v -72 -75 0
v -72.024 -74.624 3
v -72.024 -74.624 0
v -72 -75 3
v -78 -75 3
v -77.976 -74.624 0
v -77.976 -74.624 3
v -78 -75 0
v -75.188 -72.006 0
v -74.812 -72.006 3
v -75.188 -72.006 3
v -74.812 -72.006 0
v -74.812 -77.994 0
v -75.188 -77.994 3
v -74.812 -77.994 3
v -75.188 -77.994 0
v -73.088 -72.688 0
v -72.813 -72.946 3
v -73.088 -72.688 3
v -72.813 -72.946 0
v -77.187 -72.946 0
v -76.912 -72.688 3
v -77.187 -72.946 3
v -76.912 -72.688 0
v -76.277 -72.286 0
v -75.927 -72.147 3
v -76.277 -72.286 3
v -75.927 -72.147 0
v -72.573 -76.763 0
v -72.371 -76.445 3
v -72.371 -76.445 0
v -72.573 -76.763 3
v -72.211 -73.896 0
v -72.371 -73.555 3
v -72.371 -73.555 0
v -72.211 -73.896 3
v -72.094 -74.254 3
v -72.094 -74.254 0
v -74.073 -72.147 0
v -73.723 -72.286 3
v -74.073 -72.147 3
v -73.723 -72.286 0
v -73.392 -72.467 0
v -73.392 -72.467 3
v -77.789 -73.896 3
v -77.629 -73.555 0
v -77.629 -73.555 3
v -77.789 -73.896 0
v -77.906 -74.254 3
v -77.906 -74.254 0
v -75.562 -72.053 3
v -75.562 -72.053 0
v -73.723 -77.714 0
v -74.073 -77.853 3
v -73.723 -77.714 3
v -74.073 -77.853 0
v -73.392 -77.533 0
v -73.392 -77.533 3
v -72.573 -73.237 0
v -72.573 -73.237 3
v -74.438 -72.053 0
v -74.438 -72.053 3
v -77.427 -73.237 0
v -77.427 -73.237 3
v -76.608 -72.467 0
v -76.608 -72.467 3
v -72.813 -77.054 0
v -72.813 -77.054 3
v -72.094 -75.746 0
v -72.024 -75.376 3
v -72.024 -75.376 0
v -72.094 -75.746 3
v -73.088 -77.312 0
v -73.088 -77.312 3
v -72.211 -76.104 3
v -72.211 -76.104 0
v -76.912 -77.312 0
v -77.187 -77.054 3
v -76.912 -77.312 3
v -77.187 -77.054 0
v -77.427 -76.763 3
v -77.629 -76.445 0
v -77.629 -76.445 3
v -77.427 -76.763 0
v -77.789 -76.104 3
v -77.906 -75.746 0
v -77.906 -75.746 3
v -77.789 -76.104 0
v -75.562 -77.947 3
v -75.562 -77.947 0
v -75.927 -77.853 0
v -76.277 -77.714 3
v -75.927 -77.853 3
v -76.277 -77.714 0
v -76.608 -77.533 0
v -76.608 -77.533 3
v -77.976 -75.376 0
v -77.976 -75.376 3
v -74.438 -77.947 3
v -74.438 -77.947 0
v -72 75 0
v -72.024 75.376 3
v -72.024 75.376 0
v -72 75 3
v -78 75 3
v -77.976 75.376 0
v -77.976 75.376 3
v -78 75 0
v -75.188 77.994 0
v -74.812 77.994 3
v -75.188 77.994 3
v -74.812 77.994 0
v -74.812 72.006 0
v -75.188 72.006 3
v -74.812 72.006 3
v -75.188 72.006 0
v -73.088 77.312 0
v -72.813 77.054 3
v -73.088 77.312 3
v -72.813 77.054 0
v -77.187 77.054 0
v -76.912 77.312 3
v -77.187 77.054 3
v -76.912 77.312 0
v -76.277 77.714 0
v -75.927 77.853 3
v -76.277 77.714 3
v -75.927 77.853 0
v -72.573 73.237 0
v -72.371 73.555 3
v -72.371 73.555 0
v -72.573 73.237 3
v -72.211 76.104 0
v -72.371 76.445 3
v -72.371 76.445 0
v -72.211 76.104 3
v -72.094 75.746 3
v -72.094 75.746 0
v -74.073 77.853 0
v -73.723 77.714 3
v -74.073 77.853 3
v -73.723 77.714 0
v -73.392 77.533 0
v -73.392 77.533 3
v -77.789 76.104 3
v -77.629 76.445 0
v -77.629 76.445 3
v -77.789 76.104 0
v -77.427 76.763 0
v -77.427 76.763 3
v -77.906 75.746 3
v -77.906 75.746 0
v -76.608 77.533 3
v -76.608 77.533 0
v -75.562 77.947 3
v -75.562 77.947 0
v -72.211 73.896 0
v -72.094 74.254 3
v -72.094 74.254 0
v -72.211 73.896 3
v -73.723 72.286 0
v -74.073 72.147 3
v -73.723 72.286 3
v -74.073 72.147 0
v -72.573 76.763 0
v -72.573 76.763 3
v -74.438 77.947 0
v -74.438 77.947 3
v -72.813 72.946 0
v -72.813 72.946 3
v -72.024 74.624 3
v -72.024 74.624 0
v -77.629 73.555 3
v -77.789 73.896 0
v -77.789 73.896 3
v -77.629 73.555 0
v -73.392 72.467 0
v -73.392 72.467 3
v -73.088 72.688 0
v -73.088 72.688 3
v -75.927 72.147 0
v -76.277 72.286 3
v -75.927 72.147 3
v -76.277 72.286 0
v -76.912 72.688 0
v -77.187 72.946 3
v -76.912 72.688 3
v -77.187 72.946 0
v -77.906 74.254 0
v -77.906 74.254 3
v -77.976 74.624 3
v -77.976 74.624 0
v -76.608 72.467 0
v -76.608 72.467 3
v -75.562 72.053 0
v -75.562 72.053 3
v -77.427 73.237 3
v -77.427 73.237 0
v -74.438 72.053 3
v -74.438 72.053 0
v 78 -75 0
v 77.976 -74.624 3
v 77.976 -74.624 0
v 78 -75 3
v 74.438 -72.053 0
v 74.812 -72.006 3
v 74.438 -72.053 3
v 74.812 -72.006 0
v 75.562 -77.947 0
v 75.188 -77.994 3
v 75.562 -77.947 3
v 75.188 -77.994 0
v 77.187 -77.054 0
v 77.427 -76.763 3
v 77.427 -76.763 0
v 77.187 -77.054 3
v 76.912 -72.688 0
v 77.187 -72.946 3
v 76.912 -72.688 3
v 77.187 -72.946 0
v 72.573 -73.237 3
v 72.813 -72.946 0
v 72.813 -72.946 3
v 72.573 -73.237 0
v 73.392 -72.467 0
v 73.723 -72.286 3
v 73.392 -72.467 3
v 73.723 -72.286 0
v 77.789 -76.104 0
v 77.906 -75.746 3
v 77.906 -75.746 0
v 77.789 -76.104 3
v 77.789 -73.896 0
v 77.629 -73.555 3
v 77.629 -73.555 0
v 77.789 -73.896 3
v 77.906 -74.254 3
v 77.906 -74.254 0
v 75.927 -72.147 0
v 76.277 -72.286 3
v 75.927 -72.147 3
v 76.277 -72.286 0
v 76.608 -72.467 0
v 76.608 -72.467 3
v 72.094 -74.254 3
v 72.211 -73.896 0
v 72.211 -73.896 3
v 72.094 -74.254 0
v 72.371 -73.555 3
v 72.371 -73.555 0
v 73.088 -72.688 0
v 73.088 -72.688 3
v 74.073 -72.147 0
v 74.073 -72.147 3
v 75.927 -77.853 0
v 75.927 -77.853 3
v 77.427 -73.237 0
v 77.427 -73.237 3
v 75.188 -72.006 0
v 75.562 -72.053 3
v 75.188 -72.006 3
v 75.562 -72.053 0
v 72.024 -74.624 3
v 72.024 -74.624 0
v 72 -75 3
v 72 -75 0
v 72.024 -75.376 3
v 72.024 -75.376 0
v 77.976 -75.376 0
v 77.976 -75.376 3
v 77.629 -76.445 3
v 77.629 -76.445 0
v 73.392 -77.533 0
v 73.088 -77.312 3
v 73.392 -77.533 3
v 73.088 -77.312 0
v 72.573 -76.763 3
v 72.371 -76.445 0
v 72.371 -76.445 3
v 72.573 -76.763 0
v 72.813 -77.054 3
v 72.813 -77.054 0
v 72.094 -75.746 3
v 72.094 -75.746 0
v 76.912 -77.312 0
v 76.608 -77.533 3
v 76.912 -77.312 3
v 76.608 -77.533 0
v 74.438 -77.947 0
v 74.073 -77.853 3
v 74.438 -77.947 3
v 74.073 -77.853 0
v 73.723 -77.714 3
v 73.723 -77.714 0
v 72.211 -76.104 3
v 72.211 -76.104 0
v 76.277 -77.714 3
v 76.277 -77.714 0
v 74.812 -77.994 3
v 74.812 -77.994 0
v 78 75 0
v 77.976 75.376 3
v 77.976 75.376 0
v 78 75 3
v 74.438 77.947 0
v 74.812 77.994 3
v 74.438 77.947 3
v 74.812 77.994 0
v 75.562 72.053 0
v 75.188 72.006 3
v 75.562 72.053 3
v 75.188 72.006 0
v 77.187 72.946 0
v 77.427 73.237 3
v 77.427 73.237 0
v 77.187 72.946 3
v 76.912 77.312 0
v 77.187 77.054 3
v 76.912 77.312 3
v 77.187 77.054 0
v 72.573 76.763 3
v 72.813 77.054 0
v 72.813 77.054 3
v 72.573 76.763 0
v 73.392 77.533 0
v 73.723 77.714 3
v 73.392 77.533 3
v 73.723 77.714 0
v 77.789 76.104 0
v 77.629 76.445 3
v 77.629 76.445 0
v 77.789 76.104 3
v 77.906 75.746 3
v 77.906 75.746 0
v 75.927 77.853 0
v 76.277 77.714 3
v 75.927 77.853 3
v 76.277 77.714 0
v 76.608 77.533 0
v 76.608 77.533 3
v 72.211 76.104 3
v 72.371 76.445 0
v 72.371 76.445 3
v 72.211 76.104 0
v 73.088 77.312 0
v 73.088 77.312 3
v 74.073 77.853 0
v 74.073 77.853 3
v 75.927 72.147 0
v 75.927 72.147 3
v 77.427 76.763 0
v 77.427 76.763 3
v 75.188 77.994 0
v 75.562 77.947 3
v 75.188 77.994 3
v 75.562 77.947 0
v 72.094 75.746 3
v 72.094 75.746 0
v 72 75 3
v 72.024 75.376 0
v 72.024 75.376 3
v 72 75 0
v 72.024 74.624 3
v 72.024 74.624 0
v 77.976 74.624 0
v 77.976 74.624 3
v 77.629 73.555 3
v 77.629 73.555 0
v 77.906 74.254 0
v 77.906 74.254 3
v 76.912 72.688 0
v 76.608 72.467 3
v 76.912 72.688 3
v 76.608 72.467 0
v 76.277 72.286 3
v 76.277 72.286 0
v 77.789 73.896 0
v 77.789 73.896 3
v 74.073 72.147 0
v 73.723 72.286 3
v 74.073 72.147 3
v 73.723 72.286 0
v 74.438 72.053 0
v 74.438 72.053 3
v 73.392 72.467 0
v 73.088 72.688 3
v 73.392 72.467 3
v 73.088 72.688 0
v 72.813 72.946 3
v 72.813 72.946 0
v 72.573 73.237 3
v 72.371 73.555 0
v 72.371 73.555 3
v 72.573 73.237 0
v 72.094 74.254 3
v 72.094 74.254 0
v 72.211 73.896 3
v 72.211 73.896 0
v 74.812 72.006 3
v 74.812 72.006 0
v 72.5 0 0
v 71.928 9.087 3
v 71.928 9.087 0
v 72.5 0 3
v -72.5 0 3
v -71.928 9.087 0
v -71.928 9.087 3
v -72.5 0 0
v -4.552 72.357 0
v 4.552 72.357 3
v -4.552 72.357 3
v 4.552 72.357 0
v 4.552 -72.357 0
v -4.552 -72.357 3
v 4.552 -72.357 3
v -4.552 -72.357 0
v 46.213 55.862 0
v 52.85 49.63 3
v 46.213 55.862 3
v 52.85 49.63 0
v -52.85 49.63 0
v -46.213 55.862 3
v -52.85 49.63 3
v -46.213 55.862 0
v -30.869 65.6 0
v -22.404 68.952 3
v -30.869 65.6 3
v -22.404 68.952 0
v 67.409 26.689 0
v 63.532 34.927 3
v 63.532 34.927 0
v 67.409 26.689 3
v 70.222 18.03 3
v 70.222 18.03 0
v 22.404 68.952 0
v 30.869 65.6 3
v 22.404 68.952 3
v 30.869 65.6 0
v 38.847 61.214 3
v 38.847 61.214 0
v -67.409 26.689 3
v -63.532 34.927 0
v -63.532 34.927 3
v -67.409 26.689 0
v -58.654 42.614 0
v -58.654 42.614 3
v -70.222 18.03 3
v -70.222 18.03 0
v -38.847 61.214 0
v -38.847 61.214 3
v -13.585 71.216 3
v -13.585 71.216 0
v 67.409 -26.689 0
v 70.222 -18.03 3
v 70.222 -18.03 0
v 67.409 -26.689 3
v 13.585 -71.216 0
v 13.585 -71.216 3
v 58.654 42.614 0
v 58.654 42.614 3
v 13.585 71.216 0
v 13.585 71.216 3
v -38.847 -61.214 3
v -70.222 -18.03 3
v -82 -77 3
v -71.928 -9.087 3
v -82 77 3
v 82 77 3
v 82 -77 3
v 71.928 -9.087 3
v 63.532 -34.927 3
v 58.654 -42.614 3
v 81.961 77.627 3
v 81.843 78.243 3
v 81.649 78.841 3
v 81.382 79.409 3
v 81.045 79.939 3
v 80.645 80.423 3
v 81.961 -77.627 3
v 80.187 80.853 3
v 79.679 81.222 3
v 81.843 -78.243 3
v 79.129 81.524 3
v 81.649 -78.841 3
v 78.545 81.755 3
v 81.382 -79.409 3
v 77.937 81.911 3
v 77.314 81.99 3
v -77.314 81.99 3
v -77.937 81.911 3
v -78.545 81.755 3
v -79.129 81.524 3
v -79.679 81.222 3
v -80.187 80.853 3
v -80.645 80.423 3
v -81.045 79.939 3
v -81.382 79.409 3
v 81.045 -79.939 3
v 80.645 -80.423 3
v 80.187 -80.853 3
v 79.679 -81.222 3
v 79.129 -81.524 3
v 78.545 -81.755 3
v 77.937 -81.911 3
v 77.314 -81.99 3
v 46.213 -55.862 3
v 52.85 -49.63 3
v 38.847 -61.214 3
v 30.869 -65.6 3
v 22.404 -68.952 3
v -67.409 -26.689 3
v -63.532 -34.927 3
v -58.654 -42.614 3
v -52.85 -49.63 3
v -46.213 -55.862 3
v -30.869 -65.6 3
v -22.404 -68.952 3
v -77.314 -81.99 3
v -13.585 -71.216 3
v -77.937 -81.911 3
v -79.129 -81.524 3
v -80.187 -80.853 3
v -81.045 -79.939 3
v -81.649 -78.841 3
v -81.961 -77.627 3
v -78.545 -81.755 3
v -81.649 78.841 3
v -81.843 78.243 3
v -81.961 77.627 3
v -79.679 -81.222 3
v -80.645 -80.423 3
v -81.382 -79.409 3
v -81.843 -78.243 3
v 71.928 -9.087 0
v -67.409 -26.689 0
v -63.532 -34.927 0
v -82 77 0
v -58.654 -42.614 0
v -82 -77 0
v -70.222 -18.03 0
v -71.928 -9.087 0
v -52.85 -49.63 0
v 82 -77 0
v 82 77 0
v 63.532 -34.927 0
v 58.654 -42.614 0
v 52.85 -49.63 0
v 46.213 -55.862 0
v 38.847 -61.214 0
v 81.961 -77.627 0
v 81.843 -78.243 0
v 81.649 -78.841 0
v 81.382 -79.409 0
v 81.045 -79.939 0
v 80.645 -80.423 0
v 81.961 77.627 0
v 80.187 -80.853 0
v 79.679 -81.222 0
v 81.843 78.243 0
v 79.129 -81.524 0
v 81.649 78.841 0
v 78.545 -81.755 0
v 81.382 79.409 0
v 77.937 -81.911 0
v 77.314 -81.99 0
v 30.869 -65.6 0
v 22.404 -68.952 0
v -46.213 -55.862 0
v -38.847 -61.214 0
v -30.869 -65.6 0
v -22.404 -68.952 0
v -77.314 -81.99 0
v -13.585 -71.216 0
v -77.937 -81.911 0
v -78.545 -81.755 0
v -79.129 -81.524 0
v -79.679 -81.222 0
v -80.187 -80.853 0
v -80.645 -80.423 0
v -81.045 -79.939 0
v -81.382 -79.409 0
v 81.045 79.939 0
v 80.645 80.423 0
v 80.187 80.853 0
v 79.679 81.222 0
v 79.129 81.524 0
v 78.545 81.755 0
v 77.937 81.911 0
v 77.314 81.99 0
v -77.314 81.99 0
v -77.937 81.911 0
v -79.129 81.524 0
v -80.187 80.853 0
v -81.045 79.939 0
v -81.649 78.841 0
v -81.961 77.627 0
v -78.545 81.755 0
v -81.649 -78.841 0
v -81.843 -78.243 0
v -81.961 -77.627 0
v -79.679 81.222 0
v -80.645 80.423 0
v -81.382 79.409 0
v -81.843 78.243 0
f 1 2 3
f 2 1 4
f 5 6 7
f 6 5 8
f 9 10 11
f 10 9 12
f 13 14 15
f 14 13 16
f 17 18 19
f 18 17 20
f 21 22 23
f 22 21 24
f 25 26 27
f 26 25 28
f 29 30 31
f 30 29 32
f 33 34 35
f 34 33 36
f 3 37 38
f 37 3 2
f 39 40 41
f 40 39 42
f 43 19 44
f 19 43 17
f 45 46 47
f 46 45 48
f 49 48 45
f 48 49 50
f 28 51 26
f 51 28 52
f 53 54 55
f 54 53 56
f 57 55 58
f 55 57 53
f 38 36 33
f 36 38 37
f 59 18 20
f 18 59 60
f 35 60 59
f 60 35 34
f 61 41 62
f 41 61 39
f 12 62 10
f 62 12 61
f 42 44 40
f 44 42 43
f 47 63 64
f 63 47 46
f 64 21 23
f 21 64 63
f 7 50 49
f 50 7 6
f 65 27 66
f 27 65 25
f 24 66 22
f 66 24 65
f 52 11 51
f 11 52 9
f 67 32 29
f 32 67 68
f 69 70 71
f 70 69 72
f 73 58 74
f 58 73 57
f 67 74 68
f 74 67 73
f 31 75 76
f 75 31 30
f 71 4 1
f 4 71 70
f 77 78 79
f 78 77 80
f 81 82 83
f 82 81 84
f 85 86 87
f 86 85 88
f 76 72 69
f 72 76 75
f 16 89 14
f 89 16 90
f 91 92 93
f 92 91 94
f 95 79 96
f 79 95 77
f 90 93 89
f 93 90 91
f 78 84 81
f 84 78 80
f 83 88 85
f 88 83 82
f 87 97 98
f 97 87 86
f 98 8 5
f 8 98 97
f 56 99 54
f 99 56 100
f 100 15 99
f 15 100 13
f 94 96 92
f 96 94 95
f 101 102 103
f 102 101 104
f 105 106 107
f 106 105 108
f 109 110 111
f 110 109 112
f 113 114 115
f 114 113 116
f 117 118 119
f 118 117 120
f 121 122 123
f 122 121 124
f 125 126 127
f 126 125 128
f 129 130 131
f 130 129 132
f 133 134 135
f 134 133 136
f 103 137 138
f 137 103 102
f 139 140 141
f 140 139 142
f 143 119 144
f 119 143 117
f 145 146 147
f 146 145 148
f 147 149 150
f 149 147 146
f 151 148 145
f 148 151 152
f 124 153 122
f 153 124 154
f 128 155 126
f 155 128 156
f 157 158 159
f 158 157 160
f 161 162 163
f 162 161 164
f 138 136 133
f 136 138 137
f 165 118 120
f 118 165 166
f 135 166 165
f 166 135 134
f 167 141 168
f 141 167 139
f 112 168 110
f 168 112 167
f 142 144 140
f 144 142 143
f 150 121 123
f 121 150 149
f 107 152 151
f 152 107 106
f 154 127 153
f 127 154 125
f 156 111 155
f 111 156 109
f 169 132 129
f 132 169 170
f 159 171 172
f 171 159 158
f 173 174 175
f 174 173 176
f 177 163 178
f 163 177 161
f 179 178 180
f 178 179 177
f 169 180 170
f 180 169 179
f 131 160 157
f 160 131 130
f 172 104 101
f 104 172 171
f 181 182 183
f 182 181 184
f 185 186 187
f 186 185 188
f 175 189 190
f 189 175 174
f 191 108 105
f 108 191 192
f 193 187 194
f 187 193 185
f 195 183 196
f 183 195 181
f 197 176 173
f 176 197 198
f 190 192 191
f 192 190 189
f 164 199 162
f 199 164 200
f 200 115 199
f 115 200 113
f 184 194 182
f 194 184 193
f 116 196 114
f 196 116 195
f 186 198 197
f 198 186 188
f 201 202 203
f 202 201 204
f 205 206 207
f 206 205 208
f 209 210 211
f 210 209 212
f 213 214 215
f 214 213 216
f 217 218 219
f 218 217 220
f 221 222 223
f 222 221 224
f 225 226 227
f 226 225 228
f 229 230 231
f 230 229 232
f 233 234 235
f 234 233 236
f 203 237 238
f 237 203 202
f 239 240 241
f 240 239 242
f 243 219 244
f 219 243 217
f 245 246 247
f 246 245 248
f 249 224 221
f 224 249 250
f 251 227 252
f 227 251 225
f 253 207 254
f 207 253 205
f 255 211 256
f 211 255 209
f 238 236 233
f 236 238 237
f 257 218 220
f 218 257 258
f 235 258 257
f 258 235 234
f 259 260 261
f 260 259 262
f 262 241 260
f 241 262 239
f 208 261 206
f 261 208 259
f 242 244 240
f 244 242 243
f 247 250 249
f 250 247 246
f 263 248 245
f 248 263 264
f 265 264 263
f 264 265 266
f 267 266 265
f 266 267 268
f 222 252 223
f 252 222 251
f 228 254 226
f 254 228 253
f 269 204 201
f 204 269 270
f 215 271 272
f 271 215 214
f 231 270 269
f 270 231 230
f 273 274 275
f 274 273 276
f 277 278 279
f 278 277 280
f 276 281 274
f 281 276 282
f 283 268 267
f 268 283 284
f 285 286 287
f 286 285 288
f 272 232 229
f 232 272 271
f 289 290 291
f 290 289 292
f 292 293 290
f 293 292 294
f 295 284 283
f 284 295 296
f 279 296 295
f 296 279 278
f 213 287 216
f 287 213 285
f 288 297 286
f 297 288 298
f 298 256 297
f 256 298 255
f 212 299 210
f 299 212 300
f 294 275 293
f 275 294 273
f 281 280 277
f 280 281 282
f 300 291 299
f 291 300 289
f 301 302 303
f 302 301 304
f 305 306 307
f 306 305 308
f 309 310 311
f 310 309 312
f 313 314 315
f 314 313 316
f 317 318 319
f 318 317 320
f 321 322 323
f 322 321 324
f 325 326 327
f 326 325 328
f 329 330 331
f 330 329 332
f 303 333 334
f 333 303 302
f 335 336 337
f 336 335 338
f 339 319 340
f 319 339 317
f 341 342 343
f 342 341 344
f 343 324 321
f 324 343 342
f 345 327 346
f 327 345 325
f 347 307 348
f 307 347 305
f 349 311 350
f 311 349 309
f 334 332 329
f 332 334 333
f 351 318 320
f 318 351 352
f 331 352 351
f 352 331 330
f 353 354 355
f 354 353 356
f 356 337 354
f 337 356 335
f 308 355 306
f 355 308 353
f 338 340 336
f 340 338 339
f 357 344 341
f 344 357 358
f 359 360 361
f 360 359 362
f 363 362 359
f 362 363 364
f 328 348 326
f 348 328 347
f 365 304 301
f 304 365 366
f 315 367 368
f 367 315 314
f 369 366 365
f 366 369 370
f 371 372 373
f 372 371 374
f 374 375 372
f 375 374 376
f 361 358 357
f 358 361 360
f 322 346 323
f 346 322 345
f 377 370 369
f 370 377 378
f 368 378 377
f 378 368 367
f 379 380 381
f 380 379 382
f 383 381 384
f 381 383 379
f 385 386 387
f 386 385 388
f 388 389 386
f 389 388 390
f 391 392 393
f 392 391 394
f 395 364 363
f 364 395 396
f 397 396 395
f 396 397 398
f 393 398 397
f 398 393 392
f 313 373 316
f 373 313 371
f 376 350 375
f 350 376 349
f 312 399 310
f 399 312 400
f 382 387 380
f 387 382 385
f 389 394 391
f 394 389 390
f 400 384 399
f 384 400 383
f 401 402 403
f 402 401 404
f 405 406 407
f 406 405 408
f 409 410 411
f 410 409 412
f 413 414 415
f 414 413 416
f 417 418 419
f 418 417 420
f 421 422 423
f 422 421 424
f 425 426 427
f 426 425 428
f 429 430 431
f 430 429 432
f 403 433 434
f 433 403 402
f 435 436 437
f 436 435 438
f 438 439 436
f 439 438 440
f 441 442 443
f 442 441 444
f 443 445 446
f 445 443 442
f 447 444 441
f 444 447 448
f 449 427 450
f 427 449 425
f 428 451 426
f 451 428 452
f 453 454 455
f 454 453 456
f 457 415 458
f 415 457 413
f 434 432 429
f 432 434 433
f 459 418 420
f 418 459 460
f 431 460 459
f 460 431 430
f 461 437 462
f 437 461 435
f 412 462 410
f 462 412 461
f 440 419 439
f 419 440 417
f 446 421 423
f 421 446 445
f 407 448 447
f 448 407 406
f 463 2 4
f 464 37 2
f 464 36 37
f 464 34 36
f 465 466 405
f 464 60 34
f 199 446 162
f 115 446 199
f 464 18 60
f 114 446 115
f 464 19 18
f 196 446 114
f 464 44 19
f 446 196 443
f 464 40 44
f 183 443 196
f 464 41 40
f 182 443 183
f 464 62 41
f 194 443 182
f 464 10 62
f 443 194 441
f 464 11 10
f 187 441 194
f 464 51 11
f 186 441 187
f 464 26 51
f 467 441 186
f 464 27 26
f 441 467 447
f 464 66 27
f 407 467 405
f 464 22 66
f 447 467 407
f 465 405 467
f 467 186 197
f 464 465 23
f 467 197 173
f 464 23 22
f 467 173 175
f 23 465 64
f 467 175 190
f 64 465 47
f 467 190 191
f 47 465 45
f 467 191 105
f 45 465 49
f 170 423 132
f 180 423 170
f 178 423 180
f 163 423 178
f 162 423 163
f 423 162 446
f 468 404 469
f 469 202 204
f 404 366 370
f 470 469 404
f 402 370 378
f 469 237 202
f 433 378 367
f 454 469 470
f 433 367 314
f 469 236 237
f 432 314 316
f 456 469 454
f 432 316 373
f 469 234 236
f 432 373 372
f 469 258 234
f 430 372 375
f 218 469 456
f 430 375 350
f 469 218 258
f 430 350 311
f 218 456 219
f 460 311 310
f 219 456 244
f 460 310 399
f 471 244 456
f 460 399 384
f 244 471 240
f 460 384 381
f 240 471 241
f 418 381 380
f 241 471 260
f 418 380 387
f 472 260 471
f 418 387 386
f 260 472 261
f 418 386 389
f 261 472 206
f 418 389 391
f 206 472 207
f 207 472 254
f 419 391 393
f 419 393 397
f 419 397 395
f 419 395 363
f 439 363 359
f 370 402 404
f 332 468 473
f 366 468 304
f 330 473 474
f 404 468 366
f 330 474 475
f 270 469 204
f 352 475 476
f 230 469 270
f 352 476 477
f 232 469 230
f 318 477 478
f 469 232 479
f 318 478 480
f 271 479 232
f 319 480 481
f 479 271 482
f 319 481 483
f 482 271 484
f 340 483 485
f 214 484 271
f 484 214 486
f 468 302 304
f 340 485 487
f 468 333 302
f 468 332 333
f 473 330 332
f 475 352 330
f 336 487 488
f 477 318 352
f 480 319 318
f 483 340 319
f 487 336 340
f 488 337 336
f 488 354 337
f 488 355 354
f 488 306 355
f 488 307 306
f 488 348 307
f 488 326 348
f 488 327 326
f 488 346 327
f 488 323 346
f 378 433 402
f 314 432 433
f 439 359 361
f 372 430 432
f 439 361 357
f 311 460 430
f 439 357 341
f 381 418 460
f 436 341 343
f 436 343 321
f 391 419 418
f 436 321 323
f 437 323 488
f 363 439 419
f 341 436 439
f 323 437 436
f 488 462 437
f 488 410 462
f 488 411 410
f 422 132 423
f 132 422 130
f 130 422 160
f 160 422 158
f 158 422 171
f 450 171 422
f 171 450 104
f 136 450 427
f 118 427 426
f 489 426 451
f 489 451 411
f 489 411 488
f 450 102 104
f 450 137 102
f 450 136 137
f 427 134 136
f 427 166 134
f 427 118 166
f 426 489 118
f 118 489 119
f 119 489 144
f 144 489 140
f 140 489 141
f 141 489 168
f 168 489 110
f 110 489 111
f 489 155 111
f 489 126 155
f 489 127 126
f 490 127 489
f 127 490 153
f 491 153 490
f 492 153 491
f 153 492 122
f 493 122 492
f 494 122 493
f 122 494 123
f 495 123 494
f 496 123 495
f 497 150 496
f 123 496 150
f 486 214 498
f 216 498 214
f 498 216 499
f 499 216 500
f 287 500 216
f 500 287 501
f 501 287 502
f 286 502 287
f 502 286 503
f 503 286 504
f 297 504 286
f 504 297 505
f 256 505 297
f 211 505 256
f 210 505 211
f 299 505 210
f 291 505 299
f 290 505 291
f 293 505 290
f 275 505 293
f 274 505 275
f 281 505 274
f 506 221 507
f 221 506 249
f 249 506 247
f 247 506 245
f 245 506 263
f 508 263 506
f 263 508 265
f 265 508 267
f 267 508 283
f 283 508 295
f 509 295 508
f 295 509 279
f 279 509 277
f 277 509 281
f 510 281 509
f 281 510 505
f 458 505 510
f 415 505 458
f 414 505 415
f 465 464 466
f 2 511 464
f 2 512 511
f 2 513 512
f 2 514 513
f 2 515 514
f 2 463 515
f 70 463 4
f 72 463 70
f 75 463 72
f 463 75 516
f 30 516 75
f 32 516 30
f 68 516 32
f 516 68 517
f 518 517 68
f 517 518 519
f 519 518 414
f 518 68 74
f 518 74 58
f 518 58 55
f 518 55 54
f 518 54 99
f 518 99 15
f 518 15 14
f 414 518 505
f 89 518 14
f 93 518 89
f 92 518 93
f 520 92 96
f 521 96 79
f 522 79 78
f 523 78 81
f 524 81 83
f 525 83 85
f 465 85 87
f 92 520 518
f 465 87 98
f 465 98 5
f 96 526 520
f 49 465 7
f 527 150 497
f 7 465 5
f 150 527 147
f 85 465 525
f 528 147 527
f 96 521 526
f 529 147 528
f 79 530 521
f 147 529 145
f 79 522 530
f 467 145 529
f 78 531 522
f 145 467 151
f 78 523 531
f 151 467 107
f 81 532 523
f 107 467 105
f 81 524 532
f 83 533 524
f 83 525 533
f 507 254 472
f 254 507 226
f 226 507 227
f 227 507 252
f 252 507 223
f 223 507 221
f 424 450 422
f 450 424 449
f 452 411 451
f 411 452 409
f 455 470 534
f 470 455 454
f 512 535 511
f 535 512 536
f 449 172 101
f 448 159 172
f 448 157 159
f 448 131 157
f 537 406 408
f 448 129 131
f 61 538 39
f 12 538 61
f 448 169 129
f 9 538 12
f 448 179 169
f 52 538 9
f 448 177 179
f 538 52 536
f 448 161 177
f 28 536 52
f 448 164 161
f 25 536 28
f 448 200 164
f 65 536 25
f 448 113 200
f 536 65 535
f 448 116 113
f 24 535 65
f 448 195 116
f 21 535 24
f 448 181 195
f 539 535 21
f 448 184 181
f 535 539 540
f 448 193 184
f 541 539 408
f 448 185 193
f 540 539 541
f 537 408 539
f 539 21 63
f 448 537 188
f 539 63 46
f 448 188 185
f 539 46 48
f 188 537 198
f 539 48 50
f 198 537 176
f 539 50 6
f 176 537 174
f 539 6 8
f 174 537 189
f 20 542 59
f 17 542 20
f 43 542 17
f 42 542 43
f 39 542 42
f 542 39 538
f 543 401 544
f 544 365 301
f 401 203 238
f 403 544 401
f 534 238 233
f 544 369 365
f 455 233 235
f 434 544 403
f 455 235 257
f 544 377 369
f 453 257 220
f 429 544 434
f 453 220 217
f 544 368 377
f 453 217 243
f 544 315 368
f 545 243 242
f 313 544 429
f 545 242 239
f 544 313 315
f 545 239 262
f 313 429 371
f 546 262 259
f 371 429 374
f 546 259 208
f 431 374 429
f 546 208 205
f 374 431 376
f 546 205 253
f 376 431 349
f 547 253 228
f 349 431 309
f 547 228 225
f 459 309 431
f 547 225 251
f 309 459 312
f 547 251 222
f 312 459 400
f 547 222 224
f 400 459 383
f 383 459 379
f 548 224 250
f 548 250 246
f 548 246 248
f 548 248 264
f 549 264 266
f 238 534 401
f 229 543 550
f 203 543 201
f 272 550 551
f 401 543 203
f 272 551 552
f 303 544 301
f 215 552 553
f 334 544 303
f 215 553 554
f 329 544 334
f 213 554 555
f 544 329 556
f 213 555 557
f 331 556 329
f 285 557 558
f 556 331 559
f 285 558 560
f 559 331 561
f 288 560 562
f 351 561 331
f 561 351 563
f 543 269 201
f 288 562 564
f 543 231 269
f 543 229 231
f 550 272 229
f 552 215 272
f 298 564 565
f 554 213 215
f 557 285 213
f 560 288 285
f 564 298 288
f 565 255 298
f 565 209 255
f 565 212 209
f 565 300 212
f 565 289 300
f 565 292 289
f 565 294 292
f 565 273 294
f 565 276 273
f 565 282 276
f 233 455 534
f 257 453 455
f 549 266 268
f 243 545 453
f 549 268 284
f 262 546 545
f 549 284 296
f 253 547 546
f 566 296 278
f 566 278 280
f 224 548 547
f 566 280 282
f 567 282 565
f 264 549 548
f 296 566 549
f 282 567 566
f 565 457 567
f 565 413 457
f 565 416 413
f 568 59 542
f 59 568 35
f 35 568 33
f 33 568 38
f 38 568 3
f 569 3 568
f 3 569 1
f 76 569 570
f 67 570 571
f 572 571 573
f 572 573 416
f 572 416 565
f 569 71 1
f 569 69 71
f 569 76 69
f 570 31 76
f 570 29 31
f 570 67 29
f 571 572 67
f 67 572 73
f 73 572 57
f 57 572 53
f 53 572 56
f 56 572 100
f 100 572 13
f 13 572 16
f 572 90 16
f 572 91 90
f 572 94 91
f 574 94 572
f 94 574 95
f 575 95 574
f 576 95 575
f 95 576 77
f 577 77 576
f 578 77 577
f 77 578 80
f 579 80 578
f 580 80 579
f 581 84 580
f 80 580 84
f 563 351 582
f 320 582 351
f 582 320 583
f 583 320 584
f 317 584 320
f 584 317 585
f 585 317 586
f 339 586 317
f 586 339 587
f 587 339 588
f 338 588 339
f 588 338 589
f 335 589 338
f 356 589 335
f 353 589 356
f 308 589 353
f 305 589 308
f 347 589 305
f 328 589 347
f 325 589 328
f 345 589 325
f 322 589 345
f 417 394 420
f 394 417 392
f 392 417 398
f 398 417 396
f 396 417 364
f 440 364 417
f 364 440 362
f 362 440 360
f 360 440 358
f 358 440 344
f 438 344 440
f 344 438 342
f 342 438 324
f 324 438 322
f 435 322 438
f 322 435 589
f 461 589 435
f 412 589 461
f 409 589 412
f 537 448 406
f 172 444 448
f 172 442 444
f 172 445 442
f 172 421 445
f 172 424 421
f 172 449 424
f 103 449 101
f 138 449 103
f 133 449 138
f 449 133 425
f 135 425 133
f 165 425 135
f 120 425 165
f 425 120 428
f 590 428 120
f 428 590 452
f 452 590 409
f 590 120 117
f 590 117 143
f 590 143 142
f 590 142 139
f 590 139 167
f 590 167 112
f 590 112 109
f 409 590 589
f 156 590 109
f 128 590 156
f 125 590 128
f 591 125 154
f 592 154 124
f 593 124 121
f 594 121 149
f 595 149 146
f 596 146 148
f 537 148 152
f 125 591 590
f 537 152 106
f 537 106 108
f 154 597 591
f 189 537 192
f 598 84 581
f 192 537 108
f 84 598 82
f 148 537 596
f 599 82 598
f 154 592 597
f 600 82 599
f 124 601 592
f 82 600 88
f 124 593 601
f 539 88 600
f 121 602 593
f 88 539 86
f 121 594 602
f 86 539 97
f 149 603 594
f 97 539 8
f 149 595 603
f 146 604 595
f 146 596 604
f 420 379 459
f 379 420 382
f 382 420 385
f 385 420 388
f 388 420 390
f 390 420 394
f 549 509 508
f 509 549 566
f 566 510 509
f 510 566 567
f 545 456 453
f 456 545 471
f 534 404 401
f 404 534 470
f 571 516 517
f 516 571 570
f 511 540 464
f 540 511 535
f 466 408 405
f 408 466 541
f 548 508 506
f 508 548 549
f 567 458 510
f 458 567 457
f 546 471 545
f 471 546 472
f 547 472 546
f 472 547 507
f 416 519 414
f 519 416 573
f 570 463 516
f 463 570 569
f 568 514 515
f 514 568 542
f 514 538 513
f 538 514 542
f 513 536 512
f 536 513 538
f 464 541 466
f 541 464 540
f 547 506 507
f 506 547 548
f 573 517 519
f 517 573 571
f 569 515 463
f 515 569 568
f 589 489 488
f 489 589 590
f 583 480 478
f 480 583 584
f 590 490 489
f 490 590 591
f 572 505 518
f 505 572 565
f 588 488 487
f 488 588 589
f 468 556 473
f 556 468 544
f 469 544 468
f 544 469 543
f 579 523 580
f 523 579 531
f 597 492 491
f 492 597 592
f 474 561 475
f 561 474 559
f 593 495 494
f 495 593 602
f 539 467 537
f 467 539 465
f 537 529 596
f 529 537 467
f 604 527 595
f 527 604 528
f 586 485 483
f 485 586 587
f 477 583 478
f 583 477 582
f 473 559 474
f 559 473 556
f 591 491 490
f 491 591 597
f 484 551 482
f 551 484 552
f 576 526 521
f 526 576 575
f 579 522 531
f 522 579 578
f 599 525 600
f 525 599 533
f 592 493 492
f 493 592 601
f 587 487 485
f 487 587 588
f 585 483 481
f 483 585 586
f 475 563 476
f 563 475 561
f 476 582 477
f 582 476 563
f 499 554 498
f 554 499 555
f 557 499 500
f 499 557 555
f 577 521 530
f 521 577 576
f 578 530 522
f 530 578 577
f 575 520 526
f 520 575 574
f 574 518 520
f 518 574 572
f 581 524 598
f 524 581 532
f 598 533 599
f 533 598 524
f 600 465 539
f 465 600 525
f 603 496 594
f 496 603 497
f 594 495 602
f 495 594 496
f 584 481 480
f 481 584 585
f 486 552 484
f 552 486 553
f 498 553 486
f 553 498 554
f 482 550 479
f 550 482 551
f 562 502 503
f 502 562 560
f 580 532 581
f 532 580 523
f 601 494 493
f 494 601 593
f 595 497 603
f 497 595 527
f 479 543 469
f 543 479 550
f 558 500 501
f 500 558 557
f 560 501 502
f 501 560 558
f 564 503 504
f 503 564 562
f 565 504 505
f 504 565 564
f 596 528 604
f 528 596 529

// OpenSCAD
$fn = 50;


difference() {
	union() {
		hull() {
			translate(v = [-77.0000000000, 77.0000000000, 0]) {
				cylinder(h = 3, r = 5);
			}
			translate(v = [77.0000000000, 77.0000000000, 0]) {
				cylinder(h = 3, r = 5);
			}
			translate(v = [-77.0000000000, -77.0000000000, 0]) {
				cylinder(h = 3, r = 5);
			}
			translate(v = [77.0000000000, -77.0000000000, 0]) {
				cylinder(h = 3, r = 5);
			}
		}
	}
	union() {
		#translate(v = [-75.0000000000, -75.0000000000, -100.0000000000]) {
			cylinder(h = 200, r = 3.0000000000);
		}
		#translate(v = [-75.0000000000, 75.0000000000, -100.0000000000]) {
			cylinder(h = 200, r = 3.0000000000);
		}
		#translate(v = [75.0000000000, -75.0000000000, -100.0000000000]) {
			cylinder(h = 200, r = 3.0000000000);
		}
		#translate(v = [75.0000000000, 75.0000000000, -100.0000000000]) {
			cylinder(h = 200, r = 3.0000000000);
		}
		#cylinder(h = 3, r = 72.5000000000);
	}
}
